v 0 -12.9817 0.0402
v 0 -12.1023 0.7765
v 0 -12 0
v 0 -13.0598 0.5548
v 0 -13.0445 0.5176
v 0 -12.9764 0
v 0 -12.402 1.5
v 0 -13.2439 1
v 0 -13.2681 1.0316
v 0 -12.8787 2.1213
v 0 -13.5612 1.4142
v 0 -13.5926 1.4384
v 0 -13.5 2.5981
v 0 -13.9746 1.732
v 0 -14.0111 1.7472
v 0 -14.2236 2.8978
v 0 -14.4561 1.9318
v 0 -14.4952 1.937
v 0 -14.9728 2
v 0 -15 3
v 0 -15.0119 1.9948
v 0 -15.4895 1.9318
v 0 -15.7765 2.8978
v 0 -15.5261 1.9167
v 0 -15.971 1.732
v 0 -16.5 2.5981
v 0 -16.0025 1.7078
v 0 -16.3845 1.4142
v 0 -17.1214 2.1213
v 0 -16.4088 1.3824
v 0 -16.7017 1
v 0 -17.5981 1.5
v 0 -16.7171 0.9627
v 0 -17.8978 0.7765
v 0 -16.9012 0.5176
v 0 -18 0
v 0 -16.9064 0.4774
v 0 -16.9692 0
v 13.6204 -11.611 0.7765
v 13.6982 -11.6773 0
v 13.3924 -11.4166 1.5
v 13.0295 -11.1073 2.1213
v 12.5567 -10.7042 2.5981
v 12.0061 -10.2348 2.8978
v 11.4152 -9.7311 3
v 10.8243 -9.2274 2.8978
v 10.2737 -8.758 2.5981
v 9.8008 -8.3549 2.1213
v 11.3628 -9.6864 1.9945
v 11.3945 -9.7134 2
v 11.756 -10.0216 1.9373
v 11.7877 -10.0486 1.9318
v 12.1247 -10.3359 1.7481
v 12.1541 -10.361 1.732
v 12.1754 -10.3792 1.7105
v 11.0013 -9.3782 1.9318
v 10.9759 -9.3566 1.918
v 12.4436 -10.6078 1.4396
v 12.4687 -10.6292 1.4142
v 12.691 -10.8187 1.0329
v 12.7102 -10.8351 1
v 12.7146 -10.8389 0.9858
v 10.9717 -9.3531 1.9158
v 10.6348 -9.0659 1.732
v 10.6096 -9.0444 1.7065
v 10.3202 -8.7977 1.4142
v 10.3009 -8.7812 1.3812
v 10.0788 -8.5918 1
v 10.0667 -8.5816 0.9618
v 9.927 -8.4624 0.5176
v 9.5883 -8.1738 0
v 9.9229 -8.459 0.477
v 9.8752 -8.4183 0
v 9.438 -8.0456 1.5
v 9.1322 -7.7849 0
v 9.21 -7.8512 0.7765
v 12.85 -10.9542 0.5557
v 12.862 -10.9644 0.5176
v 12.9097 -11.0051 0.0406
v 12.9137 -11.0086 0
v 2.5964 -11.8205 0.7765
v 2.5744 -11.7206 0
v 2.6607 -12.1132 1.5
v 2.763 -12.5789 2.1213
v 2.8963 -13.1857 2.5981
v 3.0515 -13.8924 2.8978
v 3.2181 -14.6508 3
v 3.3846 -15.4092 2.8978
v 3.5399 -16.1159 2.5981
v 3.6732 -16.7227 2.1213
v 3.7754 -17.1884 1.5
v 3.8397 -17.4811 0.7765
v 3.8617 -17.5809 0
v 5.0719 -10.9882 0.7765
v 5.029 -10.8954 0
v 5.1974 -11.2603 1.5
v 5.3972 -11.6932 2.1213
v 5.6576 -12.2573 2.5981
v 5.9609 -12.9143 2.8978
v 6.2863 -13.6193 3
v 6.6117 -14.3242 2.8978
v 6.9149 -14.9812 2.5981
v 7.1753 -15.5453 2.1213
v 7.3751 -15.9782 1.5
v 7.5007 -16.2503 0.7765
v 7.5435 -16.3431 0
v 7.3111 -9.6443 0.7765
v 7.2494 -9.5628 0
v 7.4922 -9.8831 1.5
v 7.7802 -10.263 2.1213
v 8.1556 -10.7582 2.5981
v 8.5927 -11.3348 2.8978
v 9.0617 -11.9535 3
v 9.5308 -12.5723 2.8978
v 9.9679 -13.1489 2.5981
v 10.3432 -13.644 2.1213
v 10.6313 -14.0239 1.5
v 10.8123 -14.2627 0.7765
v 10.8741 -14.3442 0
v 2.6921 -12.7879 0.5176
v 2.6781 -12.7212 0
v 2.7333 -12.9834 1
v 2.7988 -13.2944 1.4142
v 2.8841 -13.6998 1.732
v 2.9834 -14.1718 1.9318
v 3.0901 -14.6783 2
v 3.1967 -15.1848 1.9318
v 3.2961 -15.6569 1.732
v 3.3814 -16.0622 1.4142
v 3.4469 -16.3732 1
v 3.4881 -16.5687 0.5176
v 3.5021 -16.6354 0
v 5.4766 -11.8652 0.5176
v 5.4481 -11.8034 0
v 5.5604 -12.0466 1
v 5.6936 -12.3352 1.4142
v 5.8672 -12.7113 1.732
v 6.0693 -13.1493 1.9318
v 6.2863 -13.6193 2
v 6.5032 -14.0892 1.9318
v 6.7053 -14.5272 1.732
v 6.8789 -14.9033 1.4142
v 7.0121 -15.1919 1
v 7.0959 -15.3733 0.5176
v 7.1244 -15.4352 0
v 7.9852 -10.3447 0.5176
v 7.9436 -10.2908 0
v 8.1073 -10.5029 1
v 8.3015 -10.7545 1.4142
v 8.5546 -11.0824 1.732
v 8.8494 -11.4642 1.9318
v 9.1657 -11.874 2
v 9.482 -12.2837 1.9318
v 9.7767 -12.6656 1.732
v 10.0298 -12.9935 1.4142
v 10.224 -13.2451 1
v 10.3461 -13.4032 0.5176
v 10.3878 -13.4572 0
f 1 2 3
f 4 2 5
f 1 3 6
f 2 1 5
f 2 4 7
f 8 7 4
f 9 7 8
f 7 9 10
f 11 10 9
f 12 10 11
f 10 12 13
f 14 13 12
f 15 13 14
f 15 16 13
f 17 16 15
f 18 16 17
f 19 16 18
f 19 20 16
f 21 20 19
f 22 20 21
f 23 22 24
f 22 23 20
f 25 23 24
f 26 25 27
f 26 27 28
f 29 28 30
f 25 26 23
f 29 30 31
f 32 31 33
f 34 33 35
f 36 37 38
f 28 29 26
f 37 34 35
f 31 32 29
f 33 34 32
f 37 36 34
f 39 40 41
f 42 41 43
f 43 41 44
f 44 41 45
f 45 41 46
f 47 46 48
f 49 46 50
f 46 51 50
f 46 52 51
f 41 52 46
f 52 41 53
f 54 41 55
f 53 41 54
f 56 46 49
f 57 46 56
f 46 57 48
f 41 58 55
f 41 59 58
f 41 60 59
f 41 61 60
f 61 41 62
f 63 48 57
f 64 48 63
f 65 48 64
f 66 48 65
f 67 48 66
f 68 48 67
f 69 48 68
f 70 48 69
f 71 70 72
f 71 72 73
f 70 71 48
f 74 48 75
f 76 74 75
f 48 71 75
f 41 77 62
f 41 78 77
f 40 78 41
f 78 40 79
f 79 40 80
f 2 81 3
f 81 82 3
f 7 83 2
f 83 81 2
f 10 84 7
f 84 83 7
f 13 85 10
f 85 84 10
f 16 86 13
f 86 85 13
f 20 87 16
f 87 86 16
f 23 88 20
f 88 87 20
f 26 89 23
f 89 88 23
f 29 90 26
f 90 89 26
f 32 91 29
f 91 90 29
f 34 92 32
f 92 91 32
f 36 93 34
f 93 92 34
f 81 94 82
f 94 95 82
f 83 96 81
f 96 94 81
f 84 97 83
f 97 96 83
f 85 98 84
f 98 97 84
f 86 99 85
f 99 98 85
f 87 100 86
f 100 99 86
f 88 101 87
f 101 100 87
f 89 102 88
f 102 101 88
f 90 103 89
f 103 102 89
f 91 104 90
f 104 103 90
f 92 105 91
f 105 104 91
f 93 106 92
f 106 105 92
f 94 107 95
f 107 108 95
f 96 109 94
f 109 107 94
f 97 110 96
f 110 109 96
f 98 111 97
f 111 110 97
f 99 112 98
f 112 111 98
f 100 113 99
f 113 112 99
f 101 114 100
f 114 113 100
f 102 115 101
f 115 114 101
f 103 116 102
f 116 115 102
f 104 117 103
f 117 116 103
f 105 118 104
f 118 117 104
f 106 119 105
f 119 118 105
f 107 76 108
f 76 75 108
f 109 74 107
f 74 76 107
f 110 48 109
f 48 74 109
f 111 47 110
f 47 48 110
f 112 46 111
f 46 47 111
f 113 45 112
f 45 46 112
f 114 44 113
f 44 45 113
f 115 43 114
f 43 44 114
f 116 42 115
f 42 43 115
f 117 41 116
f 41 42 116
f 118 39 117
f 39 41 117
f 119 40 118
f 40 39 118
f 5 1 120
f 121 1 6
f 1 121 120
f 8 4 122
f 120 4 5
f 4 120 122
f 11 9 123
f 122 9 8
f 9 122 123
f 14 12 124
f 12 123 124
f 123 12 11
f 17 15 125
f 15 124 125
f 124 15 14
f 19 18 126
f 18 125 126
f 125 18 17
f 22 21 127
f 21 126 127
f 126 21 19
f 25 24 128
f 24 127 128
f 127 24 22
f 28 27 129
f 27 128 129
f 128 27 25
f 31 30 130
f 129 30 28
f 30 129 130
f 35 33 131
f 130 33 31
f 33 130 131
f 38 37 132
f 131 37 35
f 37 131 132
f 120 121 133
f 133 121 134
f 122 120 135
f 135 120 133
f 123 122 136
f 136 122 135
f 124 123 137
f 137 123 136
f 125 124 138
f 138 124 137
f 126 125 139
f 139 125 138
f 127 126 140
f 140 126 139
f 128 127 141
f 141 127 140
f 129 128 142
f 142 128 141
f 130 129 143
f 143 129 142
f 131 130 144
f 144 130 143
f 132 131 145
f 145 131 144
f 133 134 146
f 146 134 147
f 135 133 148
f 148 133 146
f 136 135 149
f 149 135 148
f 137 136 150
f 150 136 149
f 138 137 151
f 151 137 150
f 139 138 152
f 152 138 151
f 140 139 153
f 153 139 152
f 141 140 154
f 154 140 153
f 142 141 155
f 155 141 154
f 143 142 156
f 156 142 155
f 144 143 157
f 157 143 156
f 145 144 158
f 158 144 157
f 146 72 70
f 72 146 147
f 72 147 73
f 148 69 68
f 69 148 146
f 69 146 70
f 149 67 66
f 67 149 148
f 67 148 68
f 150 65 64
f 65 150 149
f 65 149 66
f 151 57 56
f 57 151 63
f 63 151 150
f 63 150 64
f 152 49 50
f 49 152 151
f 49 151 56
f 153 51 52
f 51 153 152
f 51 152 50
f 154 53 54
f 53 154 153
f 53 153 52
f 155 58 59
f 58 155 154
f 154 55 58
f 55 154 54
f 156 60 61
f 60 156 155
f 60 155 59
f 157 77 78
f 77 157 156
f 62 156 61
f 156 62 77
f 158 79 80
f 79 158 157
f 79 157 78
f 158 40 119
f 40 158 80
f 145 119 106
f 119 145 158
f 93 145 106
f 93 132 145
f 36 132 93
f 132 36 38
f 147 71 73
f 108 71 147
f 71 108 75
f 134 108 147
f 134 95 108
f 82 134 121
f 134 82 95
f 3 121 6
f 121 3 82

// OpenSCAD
// file: ../build_environments.scad
// build_environments.scad: modules to build level sections
//

module pool(diameter=10.0, wall_height=2.0, step_width=3.0, connections=[])
{
    difference() {
        union() {
        difference() {
            cylinder(h=0.5,r1=diameter+step_width,r2=diameter+step_width,$fn=48);
            translate([0,0,-0.1])
                cylinder(h=0.7,r1=diameter,r2=diameter,$fn=48);
        }
        difference() {
            cylinder(h=wall_height,r1=diameter+step_width+1.0,r2=diameter+step_width+1.0,$fn=48);
            translate([0,0,-0.1])
                cylinder(h=wall_height+0.2,r1=diameter+step_width,r2=diameter+step_width,$fn=48);
        }
        }
    
        for (c = connections)
        {
            rotate([0,90,0]) {
                angle = atan2(c[1],c[0]);
                rotate([-angle,0,0]) {
                    cylinder(h=diameter+5.0,r1=c[2],r2=c[2],$fn=48);
                }
            }
        }
    }
}

module straight(length=10.0, width=2.0, dy1=0.0, dy2=0.0, dz=0.0)
{
    dims = [0, 0, 0, 0, 0, (dz/length)];
    matrix = [
        [ 1, dims[0], dims[1], 0 ],
        [ dims[2], 1, dims[4], 0 ],
        [ dims[5], dims[3], 1, 0 ],
        [ 0, 0, 0, 1 ]
    ];
    multmatrix(matrix)
    difference() {
        translate([dy1,0,0])
        union() {
            rotate([0,90,0]) {
                difference() {
                    cylinder(h=(length-dy1-dy2),r1=width+1.0,r2=width+1.0,$fn=24);
                    translate([0,0,-0.1])
                        cylinder(h=(length-dy1-dy2+0.2),r1=width,r2=width,$fn=24);
                }
                difference() {
                    cylinder(h=1.0,r1=width+2.0,r2=width+2.0,$fn=24);
                    translate([0,0,-0.1])
                        cylinder(h=1.2,r1=width,r2=width,$fn=24);
                }
                translate([0,0,(length-dy1-dy2)-1.0]) {
                    difference() {
                        cylinder(h=1.0,r1=width+2.0,r2=width+2.0,$fn=24);
                        translate([0,0,-0.1])
                            cylinder(h=1.2,r1=width,r2=width,$fn=24);
                    }
                }
            }
        }
        translate([0,0,-(2*width+4.0)/2])
            cube([3*length,3*length,2*width+4.0],center=true);
    }
}

module curve(p0=[0,0], center=[0,0], dir=1, angle=0.0, width=2.0)
{
    radius = sqrt((p0[0]-center[0])*(p0[0]-center[0]) + (p0[1]-center[1])*(p0[1]-center[1]));
    if (dir == 0) {
        difference() {
            rotate([0,0,-90])
            difference() {
                rotate_extrude(angle = angle, convexity = 10, $fn=32)
                    translate([radius, 0, 0])
                        circle(r = width+1.0,$fn=24);
                rotate([0,0,-1.0])
                    rotate_extrude(angle = angle+2.0, convexity = 10, $fn=32)
                        translate([radius, 0, 0])
                            circle(r = width,$fn=24);
            }
            translate([0,0,-(2*width+4.0)/2])
                cube([5*radius,5*radius,2*width+4.0],center=true);
        }
    }
    else {
        difference() {
            rotate([0,0,90])
            difference() {
                rotate_extrude(angle = -angle, convexity = 10, $fn=32)
                    translate([radius, 0, 0])
                        circle(r = width+1.0,$fn=24);
                rotate([0,0,1.0])
                    rotate_extrude(angle = -angle-2.0, convexity = 10, $fn=32)
                        translate([radius, 0, 0])
                            circle(r = width,$fn=24);
            }
            translate([0,0,-(2*width+4.0)/2])
                cube([5*radius,5*radius,2*width+4.0],center=true);
        }
    }

}

// test pool
//pool(diameter=12.0000, wall_height=3.0000, step_width=3.0000, connections=[[0.0000,-26.0000,2.0000], [23.6074,0.0000,2.0000]]);

// test straight, slope
//straight(length=26.0000, width=2.0000, dy1=11.8322, dy2=6.7082, dz=0.0000);
//straight(length=29.1549, width=12.0000, dy1=0.0000, dy2=0.0000, dz=-15.0000);

// test curve
//curve(p0=[23.6074, 0.0000], center=[23.6074, 5.0000], dir=0, angle=60.1011, width=2.0000);
//curve(p0=[33.6426, 12.4219], center=[37.9771, 9.9295], dir=1, angle=120.4627, width=2.0000);
// main file
use <../build_environments.scad>;
curve(p0=[-56.4565, 20.8185], center=[-68.2240, 11.5165], dir=0, angle=49.5534, width=2.0000);
